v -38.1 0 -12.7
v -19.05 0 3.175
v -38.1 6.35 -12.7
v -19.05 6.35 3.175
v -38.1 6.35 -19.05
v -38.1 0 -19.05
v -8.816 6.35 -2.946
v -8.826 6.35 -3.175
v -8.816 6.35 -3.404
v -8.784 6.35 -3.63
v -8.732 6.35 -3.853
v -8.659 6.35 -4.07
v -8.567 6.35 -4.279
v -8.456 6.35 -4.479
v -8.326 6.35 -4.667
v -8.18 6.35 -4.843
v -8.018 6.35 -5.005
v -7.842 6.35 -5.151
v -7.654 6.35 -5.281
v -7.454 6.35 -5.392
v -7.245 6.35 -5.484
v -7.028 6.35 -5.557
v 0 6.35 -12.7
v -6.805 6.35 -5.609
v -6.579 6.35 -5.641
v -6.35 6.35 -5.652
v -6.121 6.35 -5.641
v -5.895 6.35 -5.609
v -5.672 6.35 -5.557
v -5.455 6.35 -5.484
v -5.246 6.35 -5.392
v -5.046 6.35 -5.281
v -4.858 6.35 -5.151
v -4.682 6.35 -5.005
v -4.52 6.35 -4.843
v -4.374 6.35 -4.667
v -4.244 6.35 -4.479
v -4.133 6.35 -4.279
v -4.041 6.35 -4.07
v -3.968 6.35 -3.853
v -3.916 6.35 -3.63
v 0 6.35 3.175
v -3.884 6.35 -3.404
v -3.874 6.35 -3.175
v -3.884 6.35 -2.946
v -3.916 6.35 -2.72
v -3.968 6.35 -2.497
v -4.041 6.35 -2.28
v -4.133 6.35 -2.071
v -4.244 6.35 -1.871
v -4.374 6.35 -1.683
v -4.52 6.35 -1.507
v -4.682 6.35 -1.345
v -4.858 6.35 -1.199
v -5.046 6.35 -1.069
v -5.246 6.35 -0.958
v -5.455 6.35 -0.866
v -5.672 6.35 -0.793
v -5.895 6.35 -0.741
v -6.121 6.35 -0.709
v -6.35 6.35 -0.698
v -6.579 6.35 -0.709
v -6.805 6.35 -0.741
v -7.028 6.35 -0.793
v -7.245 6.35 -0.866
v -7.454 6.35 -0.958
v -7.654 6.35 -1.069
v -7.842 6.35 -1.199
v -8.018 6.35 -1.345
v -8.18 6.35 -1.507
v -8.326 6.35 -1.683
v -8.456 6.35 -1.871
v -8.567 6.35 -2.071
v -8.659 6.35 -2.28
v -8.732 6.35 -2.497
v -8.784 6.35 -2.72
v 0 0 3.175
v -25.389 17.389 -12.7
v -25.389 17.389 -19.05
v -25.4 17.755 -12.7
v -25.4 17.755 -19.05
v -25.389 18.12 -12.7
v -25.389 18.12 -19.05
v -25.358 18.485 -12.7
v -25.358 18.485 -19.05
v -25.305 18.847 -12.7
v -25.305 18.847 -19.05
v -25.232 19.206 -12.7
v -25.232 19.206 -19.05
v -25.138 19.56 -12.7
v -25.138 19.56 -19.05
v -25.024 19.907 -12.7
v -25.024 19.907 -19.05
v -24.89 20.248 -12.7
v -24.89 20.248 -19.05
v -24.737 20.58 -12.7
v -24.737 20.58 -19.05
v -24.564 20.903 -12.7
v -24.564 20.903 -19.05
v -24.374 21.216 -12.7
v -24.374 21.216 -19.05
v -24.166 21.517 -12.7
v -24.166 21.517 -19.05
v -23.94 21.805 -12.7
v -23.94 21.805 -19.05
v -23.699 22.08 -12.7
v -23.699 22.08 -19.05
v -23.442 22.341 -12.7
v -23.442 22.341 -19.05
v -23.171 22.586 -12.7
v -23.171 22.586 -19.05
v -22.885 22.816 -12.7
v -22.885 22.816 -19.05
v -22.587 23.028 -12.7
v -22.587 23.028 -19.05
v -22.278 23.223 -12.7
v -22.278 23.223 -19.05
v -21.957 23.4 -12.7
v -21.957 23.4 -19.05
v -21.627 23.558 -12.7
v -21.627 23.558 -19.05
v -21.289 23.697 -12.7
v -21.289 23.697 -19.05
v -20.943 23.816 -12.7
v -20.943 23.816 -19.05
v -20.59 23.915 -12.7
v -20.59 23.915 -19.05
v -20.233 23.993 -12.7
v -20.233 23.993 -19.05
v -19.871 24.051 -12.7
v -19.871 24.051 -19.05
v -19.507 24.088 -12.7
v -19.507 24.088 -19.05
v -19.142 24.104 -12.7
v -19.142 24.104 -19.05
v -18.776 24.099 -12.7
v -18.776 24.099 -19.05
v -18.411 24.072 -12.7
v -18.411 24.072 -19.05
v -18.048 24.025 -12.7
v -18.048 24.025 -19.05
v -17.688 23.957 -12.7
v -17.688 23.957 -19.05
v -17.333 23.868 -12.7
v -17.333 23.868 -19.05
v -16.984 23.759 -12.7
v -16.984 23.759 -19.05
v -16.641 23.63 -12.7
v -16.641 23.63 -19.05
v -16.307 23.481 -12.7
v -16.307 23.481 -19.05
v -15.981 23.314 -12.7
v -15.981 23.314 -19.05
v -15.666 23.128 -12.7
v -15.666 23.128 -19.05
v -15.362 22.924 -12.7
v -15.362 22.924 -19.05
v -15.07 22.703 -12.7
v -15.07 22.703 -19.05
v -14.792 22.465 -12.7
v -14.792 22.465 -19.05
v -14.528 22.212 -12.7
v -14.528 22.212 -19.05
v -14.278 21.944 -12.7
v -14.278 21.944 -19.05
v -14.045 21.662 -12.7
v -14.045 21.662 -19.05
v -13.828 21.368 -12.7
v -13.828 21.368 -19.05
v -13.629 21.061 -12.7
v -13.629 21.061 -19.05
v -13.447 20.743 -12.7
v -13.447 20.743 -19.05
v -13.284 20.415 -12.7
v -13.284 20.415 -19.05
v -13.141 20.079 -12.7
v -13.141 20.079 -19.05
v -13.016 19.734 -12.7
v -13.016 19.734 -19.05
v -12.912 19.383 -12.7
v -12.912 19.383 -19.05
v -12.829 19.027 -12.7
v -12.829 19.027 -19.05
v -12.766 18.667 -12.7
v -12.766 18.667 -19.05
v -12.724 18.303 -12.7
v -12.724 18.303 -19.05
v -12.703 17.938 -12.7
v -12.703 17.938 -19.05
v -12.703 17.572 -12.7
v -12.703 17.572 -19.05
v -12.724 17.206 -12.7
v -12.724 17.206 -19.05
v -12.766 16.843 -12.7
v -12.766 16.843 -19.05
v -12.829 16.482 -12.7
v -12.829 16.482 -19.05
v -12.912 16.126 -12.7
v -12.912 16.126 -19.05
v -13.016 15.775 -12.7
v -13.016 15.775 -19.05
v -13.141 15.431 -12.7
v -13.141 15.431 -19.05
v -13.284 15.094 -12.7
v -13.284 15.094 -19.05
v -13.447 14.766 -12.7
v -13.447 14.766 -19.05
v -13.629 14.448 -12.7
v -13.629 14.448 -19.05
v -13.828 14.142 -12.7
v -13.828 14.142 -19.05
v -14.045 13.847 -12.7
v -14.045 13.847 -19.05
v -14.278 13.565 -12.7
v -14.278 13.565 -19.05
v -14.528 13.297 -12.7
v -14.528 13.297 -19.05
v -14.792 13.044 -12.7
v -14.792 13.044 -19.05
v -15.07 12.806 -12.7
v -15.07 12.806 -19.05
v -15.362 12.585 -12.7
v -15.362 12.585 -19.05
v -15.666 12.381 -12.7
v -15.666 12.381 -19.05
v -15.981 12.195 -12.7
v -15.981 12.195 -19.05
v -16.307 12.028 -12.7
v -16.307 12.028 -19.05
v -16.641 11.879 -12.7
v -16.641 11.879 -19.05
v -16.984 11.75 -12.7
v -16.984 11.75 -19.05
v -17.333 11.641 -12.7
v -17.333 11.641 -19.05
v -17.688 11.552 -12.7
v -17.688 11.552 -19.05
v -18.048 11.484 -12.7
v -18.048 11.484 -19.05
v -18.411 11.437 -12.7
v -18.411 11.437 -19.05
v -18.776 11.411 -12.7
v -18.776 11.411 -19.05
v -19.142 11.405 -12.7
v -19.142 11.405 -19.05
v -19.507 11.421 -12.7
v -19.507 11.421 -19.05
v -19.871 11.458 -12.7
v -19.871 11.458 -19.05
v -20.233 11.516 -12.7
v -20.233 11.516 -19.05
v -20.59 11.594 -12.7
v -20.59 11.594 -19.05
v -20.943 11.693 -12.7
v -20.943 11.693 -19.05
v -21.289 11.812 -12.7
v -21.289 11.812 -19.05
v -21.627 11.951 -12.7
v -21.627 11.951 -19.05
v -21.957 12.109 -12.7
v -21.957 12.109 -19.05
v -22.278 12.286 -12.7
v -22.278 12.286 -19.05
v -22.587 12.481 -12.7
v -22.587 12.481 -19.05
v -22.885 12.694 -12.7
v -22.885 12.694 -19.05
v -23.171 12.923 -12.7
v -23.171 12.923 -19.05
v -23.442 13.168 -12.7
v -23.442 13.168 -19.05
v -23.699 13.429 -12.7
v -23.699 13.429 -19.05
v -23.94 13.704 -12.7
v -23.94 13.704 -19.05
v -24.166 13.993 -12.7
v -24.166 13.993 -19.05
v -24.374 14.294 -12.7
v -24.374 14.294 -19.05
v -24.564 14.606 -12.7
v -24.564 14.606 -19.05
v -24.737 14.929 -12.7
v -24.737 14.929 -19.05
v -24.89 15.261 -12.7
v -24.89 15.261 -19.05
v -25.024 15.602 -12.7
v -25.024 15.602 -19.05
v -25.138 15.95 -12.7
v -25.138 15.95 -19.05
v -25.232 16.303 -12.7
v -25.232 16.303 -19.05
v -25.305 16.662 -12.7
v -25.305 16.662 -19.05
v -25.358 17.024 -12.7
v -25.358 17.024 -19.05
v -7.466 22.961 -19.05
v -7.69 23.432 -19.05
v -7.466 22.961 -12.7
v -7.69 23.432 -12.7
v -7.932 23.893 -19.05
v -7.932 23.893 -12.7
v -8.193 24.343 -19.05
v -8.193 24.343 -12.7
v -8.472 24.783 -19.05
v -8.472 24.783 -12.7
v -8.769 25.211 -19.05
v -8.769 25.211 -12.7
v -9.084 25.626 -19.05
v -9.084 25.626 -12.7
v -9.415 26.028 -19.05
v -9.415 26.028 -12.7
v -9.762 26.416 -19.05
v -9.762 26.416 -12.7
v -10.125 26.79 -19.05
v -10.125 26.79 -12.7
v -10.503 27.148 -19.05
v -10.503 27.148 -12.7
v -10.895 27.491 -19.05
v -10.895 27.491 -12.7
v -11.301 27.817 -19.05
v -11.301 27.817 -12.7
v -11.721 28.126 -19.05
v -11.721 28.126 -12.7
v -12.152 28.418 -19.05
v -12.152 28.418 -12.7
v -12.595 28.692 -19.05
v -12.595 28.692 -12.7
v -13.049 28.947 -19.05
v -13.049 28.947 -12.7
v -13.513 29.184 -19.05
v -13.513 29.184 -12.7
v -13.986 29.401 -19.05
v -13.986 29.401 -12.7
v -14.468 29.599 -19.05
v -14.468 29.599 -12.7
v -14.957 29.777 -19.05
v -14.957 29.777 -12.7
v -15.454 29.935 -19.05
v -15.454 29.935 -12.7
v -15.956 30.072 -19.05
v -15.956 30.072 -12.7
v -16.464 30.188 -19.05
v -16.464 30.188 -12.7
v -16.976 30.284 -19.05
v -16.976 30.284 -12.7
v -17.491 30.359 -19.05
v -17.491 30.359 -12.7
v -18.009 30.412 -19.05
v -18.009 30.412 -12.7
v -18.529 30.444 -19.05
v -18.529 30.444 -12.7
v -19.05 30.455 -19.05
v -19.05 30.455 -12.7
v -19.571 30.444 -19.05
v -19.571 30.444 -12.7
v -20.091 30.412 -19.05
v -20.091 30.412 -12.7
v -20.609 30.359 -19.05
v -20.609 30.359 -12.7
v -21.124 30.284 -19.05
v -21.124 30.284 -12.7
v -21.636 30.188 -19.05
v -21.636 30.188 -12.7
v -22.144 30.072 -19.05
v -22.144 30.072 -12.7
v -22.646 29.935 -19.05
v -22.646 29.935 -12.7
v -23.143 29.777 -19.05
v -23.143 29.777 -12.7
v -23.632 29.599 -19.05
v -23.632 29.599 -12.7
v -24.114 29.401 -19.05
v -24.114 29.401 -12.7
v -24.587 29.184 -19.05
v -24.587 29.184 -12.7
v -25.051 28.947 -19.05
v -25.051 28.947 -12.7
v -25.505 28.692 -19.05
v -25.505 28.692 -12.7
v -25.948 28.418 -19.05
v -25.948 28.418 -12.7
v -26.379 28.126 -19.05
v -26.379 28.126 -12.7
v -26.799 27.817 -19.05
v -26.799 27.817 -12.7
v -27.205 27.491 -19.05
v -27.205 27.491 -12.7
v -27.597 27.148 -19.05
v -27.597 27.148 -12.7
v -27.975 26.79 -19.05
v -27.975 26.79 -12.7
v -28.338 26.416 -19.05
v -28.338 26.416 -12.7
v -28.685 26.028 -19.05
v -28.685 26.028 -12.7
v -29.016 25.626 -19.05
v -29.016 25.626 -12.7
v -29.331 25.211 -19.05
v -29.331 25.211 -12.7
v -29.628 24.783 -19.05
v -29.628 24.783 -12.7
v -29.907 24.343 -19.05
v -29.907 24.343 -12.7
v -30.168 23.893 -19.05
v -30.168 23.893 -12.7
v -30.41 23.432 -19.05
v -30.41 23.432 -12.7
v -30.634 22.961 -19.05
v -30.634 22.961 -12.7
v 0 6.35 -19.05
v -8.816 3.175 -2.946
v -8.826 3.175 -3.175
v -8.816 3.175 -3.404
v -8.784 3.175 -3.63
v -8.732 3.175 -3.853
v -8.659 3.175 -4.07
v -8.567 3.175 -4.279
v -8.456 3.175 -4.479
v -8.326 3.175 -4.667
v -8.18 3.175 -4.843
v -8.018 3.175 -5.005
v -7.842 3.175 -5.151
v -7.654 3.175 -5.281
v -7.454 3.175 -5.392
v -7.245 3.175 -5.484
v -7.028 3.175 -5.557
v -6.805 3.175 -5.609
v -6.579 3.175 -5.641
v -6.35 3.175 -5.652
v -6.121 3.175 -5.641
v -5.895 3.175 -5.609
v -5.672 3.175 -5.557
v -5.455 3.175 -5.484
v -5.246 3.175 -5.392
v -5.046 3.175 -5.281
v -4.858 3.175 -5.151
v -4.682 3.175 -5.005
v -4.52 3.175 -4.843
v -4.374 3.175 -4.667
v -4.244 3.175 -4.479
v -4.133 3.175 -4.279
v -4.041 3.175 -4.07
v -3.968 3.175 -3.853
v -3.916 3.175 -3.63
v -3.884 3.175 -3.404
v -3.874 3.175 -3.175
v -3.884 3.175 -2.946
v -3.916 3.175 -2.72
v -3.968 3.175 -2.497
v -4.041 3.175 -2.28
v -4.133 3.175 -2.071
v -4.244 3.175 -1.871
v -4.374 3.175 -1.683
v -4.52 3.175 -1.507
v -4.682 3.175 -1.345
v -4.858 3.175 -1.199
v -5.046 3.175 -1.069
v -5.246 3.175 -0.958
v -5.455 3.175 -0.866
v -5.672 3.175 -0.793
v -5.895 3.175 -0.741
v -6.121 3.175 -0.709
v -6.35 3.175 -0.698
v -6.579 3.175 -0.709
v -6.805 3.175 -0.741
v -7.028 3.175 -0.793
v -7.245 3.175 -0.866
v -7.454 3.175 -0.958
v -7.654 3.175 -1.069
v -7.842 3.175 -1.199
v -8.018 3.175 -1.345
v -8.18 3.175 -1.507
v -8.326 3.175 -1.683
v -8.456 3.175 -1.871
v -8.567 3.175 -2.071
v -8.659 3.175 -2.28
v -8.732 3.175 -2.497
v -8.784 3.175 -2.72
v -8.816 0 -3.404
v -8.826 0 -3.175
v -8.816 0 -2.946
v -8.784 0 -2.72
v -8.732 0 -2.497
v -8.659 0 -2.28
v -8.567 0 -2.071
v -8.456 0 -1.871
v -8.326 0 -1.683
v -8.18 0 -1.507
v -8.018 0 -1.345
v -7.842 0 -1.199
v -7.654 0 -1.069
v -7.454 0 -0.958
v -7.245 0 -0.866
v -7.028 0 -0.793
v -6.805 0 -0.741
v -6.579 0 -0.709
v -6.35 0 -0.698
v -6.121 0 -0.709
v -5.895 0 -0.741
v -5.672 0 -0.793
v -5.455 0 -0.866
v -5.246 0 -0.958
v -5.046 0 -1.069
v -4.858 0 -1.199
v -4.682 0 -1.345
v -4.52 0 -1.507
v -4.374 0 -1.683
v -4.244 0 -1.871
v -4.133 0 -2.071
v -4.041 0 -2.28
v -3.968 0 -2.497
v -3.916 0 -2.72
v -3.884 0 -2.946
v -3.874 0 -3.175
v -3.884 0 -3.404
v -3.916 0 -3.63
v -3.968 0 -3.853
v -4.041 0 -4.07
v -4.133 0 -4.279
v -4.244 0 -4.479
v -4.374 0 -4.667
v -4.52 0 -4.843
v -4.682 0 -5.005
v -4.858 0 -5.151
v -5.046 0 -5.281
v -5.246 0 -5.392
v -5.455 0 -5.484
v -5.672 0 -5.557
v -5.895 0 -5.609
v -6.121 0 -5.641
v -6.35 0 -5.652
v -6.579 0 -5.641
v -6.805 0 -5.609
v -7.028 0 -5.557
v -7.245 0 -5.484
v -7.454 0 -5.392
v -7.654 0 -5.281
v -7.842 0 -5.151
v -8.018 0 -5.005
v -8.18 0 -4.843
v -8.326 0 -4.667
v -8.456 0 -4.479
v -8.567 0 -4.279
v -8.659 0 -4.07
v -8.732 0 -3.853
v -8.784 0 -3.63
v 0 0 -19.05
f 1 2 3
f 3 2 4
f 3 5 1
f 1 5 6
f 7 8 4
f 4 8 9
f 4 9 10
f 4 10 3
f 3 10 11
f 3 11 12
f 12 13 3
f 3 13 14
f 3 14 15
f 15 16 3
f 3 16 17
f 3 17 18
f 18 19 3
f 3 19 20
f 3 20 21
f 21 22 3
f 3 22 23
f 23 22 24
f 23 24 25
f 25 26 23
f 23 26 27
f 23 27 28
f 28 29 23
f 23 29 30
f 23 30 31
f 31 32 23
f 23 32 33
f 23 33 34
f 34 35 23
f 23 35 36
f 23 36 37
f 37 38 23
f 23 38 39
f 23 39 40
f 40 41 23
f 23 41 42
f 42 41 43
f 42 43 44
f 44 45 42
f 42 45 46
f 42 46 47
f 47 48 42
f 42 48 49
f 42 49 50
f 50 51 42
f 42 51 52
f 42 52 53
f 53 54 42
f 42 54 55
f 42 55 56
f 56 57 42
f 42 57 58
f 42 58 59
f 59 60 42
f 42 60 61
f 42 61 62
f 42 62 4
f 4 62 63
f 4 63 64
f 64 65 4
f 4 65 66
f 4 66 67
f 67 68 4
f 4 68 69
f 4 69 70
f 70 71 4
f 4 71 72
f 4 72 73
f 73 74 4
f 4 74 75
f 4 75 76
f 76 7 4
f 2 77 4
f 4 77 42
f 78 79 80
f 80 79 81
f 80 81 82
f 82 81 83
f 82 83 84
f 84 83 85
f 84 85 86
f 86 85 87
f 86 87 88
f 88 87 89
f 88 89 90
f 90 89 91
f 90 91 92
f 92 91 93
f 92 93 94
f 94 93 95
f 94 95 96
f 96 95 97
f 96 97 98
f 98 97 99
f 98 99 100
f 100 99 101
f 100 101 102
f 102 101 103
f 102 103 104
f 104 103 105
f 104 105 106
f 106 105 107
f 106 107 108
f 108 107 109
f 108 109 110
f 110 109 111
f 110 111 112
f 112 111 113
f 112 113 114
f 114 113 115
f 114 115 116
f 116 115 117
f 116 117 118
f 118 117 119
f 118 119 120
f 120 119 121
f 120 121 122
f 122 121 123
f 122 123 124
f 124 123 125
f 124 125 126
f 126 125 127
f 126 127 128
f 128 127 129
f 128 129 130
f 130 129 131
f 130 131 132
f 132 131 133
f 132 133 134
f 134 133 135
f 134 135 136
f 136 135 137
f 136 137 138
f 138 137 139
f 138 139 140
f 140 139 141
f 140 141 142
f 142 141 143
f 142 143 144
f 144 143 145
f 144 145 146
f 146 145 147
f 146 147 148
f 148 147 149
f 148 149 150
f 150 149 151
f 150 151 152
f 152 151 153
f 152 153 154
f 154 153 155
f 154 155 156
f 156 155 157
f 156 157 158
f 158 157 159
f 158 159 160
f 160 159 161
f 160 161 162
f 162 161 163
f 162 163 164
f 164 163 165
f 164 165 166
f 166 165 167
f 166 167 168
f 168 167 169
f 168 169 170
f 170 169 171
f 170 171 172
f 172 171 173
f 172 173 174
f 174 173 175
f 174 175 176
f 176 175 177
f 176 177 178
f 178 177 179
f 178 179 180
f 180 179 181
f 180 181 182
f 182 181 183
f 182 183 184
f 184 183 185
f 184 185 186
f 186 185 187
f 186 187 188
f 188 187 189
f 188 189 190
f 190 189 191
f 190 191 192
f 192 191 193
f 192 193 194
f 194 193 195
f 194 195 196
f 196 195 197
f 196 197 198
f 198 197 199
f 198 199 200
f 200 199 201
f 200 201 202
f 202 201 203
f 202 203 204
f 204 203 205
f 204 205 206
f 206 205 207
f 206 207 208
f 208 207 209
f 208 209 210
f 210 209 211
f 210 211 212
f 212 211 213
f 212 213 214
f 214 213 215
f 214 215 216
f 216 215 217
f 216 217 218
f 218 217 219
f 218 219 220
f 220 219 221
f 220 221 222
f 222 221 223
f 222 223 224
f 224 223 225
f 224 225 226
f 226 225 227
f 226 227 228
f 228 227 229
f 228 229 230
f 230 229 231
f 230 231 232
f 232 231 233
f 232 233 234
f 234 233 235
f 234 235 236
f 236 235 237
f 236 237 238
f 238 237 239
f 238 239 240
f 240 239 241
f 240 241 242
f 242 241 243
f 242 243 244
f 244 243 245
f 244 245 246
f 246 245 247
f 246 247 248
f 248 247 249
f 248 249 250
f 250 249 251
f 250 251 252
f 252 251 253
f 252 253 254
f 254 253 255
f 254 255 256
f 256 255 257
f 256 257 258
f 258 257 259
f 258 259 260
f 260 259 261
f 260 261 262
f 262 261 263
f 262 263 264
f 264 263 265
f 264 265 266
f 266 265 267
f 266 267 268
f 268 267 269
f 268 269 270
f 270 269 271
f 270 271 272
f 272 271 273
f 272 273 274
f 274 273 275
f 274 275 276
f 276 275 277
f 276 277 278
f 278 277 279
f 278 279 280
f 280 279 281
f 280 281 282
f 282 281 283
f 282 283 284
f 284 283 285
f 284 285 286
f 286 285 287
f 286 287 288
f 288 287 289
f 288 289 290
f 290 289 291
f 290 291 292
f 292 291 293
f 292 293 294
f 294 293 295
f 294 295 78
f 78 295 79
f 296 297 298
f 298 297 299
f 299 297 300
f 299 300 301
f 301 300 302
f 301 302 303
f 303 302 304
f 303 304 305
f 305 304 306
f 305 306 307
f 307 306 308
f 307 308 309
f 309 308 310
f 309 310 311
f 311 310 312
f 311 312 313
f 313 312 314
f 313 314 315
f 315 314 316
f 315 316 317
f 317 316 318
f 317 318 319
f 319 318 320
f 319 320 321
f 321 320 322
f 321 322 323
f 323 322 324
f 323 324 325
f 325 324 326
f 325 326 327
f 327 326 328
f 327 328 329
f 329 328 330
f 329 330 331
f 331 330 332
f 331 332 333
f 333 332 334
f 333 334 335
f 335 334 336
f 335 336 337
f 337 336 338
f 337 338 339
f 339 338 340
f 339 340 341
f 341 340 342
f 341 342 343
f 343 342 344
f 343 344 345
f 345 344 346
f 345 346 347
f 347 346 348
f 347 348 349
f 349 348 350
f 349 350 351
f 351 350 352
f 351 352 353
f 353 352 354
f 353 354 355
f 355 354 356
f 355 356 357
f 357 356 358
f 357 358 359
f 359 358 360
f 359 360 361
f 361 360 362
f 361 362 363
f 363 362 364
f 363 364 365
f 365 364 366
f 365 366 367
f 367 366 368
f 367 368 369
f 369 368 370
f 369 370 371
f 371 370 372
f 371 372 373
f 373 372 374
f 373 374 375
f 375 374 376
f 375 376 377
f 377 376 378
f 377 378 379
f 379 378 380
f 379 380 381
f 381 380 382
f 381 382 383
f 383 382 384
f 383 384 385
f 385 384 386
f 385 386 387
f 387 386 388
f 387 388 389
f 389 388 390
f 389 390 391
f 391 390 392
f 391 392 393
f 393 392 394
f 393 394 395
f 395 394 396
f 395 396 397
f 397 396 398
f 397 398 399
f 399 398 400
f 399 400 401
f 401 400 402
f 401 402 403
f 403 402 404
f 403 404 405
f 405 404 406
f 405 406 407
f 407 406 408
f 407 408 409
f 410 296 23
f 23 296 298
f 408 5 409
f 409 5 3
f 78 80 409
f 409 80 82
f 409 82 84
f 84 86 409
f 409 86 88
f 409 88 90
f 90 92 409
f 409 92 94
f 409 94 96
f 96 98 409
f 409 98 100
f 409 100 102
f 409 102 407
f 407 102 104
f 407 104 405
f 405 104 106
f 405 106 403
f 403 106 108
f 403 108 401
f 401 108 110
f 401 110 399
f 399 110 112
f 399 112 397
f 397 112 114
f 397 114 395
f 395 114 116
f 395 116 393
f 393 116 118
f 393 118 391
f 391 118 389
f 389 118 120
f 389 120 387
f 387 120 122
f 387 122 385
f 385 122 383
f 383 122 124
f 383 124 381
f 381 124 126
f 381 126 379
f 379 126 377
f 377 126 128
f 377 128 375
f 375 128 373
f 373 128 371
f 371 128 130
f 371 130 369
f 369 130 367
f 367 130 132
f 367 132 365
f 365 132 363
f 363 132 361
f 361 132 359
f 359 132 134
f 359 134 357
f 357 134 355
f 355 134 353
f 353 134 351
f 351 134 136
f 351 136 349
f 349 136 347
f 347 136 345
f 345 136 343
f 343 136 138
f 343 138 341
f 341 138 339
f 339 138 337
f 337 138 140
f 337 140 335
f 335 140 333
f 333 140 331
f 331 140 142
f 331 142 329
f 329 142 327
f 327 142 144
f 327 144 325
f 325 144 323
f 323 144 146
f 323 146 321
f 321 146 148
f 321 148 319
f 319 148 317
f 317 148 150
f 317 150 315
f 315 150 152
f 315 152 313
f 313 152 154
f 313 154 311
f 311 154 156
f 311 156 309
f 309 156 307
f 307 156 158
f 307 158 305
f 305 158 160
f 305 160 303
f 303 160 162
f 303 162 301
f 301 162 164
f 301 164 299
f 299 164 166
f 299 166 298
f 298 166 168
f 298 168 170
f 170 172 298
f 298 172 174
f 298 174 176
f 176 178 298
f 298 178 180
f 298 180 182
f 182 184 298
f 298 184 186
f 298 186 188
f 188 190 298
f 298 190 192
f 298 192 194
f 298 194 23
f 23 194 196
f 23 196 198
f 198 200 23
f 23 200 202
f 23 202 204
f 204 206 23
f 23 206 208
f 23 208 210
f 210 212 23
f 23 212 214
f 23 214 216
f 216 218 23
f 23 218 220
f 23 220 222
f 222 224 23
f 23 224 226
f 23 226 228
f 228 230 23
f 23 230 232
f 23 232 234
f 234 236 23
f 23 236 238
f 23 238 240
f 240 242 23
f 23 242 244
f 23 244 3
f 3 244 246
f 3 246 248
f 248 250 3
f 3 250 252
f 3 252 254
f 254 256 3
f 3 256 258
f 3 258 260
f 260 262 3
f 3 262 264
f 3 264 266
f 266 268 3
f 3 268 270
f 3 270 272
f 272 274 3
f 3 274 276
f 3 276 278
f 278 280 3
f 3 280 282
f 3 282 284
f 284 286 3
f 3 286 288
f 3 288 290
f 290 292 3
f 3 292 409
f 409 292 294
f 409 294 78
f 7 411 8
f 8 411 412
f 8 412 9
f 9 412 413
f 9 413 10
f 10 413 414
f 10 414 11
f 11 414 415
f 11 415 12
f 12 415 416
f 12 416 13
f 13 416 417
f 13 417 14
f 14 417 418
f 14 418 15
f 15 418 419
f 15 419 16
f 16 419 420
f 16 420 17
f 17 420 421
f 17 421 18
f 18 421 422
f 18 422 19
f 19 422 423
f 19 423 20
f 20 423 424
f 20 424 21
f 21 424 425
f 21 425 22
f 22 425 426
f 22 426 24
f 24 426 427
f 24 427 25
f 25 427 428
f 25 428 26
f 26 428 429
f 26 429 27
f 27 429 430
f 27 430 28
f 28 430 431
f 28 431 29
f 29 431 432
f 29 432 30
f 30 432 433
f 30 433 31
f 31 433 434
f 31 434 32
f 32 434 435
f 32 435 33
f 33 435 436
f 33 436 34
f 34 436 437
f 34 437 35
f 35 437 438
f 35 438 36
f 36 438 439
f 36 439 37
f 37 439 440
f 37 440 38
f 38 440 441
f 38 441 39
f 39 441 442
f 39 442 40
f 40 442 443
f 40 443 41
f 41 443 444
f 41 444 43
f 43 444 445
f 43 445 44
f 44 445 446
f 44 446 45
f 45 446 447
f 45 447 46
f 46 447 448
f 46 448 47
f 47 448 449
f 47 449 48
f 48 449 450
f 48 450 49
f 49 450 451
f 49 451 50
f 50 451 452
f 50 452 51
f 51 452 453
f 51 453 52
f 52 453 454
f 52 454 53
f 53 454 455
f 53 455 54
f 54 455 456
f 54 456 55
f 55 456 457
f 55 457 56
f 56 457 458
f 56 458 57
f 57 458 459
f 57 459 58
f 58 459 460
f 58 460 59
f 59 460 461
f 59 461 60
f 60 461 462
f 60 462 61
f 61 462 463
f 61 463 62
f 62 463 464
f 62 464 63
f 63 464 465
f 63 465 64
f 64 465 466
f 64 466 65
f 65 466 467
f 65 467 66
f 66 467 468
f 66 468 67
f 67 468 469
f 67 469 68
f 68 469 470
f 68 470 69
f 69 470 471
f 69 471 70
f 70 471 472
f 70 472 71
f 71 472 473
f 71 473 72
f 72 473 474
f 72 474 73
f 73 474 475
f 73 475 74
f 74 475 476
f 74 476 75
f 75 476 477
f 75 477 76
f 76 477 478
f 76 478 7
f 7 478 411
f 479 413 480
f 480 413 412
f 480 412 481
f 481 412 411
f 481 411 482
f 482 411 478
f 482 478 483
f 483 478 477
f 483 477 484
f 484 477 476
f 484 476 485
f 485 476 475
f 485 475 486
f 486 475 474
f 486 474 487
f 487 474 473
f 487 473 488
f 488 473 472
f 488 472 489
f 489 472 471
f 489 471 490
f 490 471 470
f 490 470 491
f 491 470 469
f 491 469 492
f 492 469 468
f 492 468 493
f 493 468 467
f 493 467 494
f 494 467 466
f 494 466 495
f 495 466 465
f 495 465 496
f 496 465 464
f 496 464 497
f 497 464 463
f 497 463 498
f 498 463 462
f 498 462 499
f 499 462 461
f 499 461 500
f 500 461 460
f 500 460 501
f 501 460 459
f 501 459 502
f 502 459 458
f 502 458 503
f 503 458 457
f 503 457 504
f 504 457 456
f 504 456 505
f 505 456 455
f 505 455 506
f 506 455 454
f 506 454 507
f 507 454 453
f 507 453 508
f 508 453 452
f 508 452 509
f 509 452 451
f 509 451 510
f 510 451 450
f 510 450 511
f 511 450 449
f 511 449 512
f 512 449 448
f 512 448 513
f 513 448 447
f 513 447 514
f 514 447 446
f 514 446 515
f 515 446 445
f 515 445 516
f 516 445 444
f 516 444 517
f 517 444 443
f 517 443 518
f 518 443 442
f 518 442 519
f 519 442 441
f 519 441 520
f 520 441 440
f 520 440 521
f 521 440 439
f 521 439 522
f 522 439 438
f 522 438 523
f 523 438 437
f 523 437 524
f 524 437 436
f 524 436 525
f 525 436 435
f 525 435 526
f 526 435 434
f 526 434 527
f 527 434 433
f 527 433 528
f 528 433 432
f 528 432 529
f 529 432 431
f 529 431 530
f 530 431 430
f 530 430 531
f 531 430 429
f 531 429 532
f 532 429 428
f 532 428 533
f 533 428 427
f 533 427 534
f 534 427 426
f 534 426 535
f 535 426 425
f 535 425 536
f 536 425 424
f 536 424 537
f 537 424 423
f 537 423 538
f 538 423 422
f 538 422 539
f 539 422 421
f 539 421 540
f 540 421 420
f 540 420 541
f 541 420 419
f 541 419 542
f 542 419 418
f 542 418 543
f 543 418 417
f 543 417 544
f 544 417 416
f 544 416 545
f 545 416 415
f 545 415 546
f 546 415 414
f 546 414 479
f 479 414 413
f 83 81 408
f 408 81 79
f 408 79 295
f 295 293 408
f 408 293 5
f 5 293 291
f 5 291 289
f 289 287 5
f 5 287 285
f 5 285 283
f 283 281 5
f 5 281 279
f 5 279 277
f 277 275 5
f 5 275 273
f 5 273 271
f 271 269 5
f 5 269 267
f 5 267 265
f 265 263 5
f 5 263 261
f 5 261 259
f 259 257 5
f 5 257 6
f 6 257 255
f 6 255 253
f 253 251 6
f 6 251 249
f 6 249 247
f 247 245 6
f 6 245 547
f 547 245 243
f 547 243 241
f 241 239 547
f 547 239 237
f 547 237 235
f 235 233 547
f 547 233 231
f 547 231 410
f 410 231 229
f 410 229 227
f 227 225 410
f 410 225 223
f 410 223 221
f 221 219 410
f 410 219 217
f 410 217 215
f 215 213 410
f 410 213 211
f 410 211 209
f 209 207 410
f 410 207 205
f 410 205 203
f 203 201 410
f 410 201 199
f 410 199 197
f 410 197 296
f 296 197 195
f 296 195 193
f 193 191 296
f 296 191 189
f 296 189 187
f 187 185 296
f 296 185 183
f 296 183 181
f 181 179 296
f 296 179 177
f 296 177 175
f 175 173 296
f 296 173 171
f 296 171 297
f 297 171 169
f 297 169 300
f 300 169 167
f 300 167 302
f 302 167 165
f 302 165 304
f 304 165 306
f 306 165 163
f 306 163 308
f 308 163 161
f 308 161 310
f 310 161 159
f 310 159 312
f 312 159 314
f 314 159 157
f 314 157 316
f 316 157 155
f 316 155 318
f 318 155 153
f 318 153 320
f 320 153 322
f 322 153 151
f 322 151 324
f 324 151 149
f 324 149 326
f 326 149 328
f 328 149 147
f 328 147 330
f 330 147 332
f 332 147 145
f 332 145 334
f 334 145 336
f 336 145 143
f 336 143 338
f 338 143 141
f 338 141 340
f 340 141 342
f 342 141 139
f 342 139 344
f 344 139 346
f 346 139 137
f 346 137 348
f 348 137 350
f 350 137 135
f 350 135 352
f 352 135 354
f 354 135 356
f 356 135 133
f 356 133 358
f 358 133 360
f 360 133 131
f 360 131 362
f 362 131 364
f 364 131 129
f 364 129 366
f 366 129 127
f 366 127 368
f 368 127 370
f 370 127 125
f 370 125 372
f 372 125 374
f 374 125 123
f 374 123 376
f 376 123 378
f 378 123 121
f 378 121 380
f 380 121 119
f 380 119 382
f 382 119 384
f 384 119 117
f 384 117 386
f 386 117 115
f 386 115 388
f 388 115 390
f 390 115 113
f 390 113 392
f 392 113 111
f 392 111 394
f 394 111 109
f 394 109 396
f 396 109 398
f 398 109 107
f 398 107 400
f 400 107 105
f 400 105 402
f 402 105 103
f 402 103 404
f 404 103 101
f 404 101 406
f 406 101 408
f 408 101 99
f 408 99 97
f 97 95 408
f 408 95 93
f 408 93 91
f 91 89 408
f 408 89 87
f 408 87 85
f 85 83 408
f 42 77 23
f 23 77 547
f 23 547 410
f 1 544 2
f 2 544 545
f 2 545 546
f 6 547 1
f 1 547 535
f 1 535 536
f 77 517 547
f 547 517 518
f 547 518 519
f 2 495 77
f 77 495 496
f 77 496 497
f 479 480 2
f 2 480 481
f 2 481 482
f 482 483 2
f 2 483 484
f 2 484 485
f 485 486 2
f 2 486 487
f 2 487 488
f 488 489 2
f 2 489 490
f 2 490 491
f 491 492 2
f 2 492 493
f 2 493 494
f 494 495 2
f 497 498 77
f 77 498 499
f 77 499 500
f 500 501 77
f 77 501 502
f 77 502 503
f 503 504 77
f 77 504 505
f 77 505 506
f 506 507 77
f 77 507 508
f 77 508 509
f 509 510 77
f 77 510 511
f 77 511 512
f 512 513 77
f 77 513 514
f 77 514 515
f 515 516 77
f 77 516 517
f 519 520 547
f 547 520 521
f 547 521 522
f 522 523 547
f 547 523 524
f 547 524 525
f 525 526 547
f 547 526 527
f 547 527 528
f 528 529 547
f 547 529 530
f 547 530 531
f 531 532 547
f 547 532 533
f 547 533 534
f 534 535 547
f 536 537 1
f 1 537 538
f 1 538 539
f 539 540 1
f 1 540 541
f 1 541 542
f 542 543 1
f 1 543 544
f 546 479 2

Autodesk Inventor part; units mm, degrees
ref_plane "YZ Plane" through (0, 0, 0) normal (1, 0, 0) x (0, 1, 0)
ref_plane "XZ Plane" through (0, 0, 0) normal (0, 1, 0) x (-1, 0, 0)
ref_plane "XY Plane" through (0, 0, 0) normal (0, 0, 1) x (1, 0, 0)
sketch "Sketch1" plane through (0, 0, 0) normal (0, 1, 0) x (-1, 0, 0)
  line L0 (0, 0) -> (38.1, 0)
  line L1 (38.1, 0) -> (38.1, -19.05)
  line L2 (38.1, -19.05) -> (0, -19.05)
  line L3 (0, -19.05) -> (0, 0)
  circle A0 centre (6.35, -3.175) radius 2.4765
  circle A1 centre (31.75, -3.175) radius 2.4765
  dimension "d0" = 4.953
  dimension "d1" = 4.953
  dimension "d2" = 25.4
  dimension "d3" = 6.35
  dimension "d4" = 3.175
  dimension "d5" = 6.35
  dimension "d6" = 19.05
extrude "Extrusion1" add sketch "Sketch1" along normal blind 6.35
sketch "Sketch2" plane through (0, 0, -19.05) normal (0, 0, -1) x (-1, 0, 0)
  line L0 (38.1, 0) -> (0, 0) projected
  line L1 (38.1, 0) -> (38.1, 6.35) projected
  line L2 (0, 6.35) -> (38.1, 6.35) projected
  line L3 (0, 0) -> (0, 6.35) projected
  circle A0 centre (19.05, 17.7546) radius 14.2748 projected
  circle A1 centre (19.05, 17.7546) radius 6.35
  line L4 (38.1, 6.35) -> (0, 6.35) projected
  line L5 (0, 6.35) -> (7.4663, 22.9612)
  line L6 (38.1, 6.35) -> (30.6337, 22.9612)
  arc A2 (30.6337, 22.9612) -> (7.4663, 22.9612) centre (19.05, 17.7546) ccw
  point P0 (0, 0)
  dimension "d9" = 6.35
  dimension "d10" = 12.7
extrude "Extrusion2" add sketch "Sketch2" against normal blind 6.35 contours L2 A0 L6 | L5 A0 L2 | L2 A0 L5 A2 L6
sketch "Sketch3" plane through (-38.1, 0, 0) normal (0, 0, 1) x (1, 0, 0)
  line L0 (38.1, 0) -> (0, 0) projected
  line L1 (38.1, 0) -> (38.1, 6.35) projected
  line L2 (0, 6.35) -> (38.1, 6.35) projected
  line L3 (0, 0) -> (0, 6.35) projected
extrude "Extrusion3" add sketch "Sketch3" along normal blind 3.175
sketch "Sketch4" plane through (0, 6.35, 0) normal (0, 1, 0) x (1, 0, 0)
  line L0 (0, 12.7) -> (-38.1, 12.7) projected
  line L1 (-38.1, 12.7) -> (-38.1, -3.175) projected
  line L2 (0, -3.175) -> (-38.1, -3.175) projected
  line L3 (0, 12.7) -> (0, -3.175) projected
  circle A0 centre (-6.35, 3.175) radius 2.4765 projected
  circle A1 centre (-31.75, 3.175) radius 2.4765 projected
  line L4 (-38.1, 12.7) -> (-19.05, -3.175)
  line L5 (-38.1, -3.175) -> (0, -3.175) projected
  point P0 (0, 0)
extrude "Extrusion4" cut sketch "Sketch4" against normal blind 25.4 contours L4 L2 L1
equation "\"d5\" = d3"
properties part number "Encoder mount_left"
